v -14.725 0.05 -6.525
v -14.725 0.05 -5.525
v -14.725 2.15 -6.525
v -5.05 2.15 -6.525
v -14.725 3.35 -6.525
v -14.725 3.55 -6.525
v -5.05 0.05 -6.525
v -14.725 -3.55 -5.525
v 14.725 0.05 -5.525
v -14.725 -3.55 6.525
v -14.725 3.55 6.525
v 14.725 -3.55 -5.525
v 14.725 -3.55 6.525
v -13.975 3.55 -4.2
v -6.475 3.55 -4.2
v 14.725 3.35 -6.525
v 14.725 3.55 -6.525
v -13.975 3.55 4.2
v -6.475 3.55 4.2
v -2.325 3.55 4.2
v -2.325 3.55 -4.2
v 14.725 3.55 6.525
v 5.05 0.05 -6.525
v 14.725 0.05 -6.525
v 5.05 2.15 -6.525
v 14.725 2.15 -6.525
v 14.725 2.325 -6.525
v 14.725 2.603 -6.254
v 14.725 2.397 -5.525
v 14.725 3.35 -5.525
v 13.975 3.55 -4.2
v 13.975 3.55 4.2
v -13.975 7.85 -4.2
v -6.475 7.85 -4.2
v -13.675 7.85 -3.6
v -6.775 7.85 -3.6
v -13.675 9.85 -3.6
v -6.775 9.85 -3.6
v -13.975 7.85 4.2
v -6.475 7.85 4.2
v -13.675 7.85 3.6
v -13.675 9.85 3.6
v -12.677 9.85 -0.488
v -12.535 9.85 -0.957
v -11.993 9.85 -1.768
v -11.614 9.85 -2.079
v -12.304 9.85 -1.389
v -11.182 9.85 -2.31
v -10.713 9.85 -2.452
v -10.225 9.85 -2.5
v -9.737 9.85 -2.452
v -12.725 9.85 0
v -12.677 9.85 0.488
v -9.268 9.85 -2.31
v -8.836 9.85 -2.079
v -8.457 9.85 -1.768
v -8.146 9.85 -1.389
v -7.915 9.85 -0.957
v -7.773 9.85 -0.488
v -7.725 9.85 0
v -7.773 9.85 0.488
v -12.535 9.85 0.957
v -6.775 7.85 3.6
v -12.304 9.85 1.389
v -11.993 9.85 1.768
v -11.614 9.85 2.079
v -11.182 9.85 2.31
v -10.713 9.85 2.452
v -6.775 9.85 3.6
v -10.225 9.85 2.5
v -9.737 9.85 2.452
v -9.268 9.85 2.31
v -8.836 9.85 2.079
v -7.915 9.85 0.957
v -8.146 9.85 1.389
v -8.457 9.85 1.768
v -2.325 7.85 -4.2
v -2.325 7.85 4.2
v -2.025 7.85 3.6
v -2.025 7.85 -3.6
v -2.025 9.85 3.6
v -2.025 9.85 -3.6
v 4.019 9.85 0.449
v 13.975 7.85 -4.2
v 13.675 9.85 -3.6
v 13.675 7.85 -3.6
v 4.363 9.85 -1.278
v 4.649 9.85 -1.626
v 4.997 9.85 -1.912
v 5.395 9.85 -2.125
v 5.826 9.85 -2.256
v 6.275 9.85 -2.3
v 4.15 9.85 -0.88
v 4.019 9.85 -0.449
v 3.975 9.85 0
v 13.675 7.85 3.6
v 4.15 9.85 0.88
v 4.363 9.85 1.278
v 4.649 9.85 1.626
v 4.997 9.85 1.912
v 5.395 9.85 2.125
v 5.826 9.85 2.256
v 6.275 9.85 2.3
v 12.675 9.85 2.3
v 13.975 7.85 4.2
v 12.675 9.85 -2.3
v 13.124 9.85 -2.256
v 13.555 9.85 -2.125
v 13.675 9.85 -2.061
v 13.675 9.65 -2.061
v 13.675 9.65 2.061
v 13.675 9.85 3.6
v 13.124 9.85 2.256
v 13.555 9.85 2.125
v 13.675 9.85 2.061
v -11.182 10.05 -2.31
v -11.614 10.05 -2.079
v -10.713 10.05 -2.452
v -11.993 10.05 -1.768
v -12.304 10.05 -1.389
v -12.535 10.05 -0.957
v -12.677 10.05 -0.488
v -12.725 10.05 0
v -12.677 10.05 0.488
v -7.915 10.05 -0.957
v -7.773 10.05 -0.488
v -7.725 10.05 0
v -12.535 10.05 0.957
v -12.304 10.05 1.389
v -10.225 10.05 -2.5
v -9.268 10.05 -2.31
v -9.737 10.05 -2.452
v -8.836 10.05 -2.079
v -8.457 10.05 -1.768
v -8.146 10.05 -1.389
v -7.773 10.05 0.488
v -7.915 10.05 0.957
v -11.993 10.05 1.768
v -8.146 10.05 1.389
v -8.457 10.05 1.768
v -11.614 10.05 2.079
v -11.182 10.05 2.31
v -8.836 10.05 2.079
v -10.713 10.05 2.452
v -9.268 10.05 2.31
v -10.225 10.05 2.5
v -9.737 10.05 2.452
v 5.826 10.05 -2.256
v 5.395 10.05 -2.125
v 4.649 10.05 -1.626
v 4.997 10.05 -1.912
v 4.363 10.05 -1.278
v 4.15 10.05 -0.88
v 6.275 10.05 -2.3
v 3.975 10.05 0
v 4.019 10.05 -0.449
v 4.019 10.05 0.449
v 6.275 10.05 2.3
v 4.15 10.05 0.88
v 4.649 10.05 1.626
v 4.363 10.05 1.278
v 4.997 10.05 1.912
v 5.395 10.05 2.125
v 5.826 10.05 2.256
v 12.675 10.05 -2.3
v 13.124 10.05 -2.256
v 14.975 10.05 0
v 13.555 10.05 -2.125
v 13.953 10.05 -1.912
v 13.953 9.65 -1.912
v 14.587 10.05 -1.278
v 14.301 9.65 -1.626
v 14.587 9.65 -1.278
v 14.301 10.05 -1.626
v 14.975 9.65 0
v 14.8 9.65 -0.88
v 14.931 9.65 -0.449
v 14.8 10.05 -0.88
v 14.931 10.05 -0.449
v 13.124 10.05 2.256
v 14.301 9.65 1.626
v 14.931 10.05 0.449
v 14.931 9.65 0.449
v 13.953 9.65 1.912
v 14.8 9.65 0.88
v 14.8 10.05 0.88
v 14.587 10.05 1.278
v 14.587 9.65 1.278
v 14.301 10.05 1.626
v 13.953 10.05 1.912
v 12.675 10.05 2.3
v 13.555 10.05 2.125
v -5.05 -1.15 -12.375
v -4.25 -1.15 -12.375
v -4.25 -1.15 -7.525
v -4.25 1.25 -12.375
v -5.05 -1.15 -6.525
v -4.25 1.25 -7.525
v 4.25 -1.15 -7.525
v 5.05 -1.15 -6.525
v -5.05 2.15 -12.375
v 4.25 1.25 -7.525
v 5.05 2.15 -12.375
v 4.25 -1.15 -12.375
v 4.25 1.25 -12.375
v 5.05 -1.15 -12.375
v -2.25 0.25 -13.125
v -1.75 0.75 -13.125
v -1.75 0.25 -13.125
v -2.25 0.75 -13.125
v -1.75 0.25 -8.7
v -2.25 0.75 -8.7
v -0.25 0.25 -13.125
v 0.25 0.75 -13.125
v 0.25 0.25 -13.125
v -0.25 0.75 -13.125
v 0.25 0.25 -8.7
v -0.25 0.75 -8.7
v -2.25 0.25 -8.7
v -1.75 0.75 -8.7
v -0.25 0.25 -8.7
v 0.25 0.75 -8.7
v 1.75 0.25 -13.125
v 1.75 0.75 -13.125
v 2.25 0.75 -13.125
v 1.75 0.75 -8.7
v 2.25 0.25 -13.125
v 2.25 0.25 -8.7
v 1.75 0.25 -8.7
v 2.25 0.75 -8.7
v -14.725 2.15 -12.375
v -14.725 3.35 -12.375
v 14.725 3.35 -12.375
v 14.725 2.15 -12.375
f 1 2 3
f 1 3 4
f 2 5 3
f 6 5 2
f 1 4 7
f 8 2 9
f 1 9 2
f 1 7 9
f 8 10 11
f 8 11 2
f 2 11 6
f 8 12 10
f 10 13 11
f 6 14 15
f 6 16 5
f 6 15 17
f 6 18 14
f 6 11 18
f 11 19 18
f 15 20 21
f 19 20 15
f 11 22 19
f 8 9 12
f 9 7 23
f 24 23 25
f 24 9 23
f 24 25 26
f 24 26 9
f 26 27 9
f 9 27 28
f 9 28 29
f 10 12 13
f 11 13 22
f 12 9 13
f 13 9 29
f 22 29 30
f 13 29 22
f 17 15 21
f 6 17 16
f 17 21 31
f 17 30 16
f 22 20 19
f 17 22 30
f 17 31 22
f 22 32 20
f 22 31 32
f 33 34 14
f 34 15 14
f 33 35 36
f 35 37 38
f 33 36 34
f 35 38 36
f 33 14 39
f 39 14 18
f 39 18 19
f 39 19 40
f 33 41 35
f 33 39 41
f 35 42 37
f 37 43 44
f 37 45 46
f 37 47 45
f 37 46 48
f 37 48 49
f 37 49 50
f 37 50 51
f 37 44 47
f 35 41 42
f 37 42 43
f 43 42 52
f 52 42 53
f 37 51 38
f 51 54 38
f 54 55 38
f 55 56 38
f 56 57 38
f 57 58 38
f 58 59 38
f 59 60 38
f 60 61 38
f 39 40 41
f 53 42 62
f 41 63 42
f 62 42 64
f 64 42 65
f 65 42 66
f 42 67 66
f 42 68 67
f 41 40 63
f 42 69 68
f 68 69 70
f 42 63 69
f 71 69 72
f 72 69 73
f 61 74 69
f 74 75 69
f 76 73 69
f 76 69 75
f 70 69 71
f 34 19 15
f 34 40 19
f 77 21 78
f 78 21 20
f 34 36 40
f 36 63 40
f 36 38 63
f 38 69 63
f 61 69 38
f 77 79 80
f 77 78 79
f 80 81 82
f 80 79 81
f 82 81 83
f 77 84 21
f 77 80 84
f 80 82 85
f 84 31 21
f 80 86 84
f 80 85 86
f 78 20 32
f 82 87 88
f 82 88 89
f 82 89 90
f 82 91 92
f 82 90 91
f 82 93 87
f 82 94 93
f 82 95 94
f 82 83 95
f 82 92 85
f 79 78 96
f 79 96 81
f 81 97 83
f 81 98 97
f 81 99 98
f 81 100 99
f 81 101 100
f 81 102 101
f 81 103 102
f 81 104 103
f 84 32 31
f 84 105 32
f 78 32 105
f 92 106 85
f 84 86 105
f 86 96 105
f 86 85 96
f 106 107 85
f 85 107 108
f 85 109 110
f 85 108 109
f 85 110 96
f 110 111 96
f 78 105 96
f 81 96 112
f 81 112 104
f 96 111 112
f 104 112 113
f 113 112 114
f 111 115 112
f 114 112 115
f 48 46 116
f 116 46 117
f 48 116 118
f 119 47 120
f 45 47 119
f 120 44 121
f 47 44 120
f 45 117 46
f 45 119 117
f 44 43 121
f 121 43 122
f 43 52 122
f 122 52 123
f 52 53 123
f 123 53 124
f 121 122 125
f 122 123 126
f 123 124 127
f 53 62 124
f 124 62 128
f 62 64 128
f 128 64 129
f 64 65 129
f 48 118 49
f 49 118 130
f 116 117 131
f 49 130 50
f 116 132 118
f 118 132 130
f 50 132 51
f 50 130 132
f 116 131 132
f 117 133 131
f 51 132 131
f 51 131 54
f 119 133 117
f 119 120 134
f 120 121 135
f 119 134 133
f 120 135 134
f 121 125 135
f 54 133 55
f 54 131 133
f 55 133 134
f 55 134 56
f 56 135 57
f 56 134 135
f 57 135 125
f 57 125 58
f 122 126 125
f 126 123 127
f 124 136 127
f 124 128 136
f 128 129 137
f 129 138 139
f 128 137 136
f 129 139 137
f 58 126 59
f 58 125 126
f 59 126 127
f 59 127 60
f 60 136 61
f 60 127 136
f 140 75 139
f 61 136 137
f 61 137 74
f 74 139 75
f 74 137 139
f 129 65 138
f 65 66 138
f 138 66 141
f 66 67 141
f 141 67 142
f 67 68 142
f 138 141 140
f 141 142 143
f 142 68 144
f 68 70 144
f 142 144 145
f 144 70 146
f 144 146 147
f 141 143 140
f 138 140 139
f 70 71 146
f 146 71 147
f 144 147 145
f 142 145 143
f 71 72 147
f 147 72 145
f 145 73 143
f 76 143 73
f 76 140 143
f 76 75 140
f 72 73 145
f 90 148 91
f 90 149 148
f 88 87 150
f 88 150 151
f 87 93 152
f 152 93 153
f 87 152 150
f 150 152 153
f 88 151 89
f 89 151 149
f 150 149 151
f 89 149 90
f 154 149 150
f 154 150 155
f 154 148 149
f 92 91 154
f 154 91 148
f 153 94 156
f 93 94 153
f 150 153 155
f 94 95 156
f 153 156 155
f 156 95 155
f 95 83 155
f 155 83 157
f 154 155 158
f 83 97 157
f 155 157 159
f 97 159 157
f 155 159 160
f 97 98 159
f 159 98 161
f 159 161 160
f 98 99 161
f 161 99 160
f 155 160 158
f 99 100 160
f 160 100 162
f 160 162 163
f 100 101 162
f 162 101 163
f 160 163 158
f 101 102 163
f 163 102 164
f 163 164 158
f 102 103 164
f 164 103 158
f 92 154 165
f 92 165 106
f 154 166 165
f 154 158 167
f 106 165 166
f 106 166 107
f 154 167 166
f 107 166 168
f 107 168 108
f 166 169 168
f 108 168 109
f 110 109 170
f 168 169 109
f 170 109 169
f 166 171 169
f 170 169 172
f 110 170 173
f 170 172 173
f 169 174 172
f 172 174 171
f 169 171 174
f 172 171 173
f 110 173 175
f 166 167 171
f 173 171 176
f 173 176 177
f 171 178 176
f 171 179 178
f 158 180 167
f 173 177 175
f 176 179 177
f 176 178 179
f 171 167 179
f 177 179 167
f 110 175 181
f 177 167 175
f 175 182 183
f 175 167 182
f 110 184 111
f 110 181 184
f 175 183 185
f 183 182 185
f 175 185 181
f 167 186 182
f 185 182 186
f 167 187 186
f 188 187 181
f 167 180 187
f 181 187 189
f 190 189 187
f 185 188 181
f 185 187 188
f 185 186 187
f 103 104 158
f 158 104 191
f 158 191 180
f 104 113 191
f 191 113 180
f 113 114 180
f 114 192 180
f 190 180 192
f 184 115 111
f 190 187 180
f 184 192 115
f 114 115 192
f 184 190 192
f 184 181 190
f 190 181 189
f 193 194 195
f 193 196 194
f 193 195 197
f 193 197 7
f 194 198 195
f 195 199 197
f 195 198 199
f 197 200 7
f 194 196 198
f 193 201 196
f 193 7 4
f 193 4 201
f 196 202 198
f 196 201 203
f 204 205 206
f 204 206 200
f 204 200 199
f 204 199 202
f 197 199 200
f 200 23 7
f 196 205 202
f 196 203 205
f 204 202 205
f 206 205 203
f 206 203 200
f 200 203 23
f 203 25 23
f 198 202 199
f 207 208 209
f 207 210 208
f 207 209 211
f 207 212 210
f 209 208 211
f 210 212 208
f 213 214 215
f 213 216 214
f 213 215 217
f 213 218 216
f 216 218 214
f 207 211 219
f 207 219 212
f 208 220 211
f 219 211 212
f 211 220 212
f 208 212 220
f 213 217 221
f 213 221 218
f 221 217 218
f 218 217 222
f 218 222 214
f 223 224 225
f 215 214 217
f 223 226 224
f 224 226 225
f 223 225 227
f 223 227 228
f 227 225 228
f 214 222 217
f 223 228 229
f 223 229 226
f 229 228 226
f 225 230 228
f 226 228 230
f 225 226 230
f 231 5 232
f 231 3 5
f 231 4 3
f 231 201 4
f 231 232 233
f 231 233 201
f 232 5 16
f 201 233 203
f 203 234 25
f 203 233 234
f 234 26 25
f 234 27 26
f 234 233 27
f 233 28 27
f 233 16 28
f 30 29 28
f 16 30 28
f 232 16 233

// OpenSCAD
// Sharp GP2Y0D413K0F Distance Measuring Sensor
// Unit: mm, Origin at center of main case body

$fn = 32;

// Main Dimensions
case_w = 29.45;      // Width (X)
case_d = 7.1;        // Depth (Y)
case_h = 13.05;      // Height (Z)
total_h = 18.9;      // Total height including PWB/connector

lens_proj_base = 4.3; // Lens case base protrusion (Y)
lens_proj_tip = 2.0;  // Front lens tip protrusion (Y)
lens_case_h1 = 8.4;   // Lens case base height
lens_case_h2 = 7.2;   // Lens case tip height

emitter_w = 7.5;      // Left lens case width
gap_w = 4.15;         // Gap between lens cases
detector_w = 16.3;    // Right lens case width

// Positions
emitter_x = -case_w/2 + 4.5;       // *4.5 mm from left edge
detector_x = emitter_x + 19.7;     // *19.7 mm pitch between lens centers

pwb_t = 1.2;          // PWB thickness
pwb_drop = total_h - case_h; // 5.85 mm below case bottom
conn_w = 10.1;        // Connector width
conn_d = 3.3;         // Connector depth

// Colors
c_case      = [0.18, 0.18, 0.18]; // Carbonic ABS (conductive black)
c_lens      = [0.25, 0.05, 0.08, 0.85]; // Visible light cut-off acrylic
c_pwb       = [0.58, 0.38, 0.22]; // Paper phenol board
c_conn      = [0.92, 0.90, 0.82]; // JCTC connector housing (natural white)
c_pin       = [0.85, 0.75, 0.30]; // Connector pins

module gp2y0d413k0f() {
    // 1. Main Case (Carbonic ABS)
    color(c_case) {
        difference() {
            cube([case_w, case_d, case_h], center=true);
            // Bottom cutout for connector & PWB seating
            translate([0, -case_d/4, -case_h/2])
                cube([case_w + 1, case_d/2 + 0.1, 2], center=true);
        }
    }

    // 2. Lens Case (Protrusion on front +Y)
    color(c_case) {
        // Emitter side housing (Left)
        translate([emitter_x, case_d/2 + lens_proj_base/2, 0])
            cube([emitter_w, lens_proj_base, lens_case_h1], center=true);
        translate([emitter_x, case_d/2 + lens_proj_base + lens_proj_tip/2, 0])
            cube([emitter_w - 0.6, lens_proj_tip, lens_case_h2], center=true);

        // Detector side housing (Right)
        det_case_x = -case_w/2 + 0.75 + emitter_w + gap_w + detector_w/2;
        translate([det_case_x, case_d/2 + lens_proj_base/2, 0])
            cube([detector_w, lens_proj_base, lens_case_h1], center=true);
        translate([det_case_x, case_d/2 + lens_proj_base + lens_proj_tip/2, 0])
            cube([detector_w - 0.6, lens_proj_tip, lens_case_h2], center=true);
    }

    // 3. Lenses (Front Windows)
    color(c_lens) {
        // Emitter lens: Circular window on the left
        translate([emitter_x, case_d/2 + lens_proj_base + lens_proj_tip, 0])
            rotate([-90, 0, 0])
            cylinder(d=5.0, h=0.4, center=true);

        // Detector lens: Rectangular window with rounded edge on the right
        translate([detector_x, case_d/2 + lens_proj_base + lens_proj_tip, 0])
            rotate([-90, 0, 0])
            hull() {
                translate([-3.2, 0, 0]) cylinder(d=4.6, h=0.4, center=true);
                translate([ 3.2, 0, 0]) cylinder(d=4.6, h=0.4, center=true);
            }
    }

    // 4. PWB (Printed Wiring Board, Paper Phenol)
    color(c_pwb) {
        translate([0, case_d/2 - pwb_t/2 - 0.2, -case_h/2 - pwb_drop/2 + 0.5])
            cube([case_w, pwb_t, pwb_drop + 1.0], center=true);
    }

    // 5. 3-Pin Connector (JCTC 12001W90-3P-HF)
    conn_center_z = -case_h/2 - pwb_drop/2;
    conn_center_y = case_d/2 - pwb_t - conn_d/2 - 0.2;
    
    // Connector Housing
    color(c_conn) {
        difference() {
            translate([0, conn_center_y, conn_center_z])
                cube([conn_w, conn_d, pwb_drop], center=true);
            // Slot for mating header
            translate([0, conn_center_y - 0.5, conn_center_z - 1])
                cube([conn_w - 1.6, conn_d - 0.8, pwb_drop], center=true);
        }
    }

    // Metal Pins
    color(c_pin) {
        for (i = [-1, 0, 1]) {
            translate([i * 2.0, conn_center_y, conn_center_z - pwb_drop/4])
                cube([0.5, 0.5, pwb_drop/2 + 1.5], center=true);
        }
    }
}

gp2y0d413k0f();
